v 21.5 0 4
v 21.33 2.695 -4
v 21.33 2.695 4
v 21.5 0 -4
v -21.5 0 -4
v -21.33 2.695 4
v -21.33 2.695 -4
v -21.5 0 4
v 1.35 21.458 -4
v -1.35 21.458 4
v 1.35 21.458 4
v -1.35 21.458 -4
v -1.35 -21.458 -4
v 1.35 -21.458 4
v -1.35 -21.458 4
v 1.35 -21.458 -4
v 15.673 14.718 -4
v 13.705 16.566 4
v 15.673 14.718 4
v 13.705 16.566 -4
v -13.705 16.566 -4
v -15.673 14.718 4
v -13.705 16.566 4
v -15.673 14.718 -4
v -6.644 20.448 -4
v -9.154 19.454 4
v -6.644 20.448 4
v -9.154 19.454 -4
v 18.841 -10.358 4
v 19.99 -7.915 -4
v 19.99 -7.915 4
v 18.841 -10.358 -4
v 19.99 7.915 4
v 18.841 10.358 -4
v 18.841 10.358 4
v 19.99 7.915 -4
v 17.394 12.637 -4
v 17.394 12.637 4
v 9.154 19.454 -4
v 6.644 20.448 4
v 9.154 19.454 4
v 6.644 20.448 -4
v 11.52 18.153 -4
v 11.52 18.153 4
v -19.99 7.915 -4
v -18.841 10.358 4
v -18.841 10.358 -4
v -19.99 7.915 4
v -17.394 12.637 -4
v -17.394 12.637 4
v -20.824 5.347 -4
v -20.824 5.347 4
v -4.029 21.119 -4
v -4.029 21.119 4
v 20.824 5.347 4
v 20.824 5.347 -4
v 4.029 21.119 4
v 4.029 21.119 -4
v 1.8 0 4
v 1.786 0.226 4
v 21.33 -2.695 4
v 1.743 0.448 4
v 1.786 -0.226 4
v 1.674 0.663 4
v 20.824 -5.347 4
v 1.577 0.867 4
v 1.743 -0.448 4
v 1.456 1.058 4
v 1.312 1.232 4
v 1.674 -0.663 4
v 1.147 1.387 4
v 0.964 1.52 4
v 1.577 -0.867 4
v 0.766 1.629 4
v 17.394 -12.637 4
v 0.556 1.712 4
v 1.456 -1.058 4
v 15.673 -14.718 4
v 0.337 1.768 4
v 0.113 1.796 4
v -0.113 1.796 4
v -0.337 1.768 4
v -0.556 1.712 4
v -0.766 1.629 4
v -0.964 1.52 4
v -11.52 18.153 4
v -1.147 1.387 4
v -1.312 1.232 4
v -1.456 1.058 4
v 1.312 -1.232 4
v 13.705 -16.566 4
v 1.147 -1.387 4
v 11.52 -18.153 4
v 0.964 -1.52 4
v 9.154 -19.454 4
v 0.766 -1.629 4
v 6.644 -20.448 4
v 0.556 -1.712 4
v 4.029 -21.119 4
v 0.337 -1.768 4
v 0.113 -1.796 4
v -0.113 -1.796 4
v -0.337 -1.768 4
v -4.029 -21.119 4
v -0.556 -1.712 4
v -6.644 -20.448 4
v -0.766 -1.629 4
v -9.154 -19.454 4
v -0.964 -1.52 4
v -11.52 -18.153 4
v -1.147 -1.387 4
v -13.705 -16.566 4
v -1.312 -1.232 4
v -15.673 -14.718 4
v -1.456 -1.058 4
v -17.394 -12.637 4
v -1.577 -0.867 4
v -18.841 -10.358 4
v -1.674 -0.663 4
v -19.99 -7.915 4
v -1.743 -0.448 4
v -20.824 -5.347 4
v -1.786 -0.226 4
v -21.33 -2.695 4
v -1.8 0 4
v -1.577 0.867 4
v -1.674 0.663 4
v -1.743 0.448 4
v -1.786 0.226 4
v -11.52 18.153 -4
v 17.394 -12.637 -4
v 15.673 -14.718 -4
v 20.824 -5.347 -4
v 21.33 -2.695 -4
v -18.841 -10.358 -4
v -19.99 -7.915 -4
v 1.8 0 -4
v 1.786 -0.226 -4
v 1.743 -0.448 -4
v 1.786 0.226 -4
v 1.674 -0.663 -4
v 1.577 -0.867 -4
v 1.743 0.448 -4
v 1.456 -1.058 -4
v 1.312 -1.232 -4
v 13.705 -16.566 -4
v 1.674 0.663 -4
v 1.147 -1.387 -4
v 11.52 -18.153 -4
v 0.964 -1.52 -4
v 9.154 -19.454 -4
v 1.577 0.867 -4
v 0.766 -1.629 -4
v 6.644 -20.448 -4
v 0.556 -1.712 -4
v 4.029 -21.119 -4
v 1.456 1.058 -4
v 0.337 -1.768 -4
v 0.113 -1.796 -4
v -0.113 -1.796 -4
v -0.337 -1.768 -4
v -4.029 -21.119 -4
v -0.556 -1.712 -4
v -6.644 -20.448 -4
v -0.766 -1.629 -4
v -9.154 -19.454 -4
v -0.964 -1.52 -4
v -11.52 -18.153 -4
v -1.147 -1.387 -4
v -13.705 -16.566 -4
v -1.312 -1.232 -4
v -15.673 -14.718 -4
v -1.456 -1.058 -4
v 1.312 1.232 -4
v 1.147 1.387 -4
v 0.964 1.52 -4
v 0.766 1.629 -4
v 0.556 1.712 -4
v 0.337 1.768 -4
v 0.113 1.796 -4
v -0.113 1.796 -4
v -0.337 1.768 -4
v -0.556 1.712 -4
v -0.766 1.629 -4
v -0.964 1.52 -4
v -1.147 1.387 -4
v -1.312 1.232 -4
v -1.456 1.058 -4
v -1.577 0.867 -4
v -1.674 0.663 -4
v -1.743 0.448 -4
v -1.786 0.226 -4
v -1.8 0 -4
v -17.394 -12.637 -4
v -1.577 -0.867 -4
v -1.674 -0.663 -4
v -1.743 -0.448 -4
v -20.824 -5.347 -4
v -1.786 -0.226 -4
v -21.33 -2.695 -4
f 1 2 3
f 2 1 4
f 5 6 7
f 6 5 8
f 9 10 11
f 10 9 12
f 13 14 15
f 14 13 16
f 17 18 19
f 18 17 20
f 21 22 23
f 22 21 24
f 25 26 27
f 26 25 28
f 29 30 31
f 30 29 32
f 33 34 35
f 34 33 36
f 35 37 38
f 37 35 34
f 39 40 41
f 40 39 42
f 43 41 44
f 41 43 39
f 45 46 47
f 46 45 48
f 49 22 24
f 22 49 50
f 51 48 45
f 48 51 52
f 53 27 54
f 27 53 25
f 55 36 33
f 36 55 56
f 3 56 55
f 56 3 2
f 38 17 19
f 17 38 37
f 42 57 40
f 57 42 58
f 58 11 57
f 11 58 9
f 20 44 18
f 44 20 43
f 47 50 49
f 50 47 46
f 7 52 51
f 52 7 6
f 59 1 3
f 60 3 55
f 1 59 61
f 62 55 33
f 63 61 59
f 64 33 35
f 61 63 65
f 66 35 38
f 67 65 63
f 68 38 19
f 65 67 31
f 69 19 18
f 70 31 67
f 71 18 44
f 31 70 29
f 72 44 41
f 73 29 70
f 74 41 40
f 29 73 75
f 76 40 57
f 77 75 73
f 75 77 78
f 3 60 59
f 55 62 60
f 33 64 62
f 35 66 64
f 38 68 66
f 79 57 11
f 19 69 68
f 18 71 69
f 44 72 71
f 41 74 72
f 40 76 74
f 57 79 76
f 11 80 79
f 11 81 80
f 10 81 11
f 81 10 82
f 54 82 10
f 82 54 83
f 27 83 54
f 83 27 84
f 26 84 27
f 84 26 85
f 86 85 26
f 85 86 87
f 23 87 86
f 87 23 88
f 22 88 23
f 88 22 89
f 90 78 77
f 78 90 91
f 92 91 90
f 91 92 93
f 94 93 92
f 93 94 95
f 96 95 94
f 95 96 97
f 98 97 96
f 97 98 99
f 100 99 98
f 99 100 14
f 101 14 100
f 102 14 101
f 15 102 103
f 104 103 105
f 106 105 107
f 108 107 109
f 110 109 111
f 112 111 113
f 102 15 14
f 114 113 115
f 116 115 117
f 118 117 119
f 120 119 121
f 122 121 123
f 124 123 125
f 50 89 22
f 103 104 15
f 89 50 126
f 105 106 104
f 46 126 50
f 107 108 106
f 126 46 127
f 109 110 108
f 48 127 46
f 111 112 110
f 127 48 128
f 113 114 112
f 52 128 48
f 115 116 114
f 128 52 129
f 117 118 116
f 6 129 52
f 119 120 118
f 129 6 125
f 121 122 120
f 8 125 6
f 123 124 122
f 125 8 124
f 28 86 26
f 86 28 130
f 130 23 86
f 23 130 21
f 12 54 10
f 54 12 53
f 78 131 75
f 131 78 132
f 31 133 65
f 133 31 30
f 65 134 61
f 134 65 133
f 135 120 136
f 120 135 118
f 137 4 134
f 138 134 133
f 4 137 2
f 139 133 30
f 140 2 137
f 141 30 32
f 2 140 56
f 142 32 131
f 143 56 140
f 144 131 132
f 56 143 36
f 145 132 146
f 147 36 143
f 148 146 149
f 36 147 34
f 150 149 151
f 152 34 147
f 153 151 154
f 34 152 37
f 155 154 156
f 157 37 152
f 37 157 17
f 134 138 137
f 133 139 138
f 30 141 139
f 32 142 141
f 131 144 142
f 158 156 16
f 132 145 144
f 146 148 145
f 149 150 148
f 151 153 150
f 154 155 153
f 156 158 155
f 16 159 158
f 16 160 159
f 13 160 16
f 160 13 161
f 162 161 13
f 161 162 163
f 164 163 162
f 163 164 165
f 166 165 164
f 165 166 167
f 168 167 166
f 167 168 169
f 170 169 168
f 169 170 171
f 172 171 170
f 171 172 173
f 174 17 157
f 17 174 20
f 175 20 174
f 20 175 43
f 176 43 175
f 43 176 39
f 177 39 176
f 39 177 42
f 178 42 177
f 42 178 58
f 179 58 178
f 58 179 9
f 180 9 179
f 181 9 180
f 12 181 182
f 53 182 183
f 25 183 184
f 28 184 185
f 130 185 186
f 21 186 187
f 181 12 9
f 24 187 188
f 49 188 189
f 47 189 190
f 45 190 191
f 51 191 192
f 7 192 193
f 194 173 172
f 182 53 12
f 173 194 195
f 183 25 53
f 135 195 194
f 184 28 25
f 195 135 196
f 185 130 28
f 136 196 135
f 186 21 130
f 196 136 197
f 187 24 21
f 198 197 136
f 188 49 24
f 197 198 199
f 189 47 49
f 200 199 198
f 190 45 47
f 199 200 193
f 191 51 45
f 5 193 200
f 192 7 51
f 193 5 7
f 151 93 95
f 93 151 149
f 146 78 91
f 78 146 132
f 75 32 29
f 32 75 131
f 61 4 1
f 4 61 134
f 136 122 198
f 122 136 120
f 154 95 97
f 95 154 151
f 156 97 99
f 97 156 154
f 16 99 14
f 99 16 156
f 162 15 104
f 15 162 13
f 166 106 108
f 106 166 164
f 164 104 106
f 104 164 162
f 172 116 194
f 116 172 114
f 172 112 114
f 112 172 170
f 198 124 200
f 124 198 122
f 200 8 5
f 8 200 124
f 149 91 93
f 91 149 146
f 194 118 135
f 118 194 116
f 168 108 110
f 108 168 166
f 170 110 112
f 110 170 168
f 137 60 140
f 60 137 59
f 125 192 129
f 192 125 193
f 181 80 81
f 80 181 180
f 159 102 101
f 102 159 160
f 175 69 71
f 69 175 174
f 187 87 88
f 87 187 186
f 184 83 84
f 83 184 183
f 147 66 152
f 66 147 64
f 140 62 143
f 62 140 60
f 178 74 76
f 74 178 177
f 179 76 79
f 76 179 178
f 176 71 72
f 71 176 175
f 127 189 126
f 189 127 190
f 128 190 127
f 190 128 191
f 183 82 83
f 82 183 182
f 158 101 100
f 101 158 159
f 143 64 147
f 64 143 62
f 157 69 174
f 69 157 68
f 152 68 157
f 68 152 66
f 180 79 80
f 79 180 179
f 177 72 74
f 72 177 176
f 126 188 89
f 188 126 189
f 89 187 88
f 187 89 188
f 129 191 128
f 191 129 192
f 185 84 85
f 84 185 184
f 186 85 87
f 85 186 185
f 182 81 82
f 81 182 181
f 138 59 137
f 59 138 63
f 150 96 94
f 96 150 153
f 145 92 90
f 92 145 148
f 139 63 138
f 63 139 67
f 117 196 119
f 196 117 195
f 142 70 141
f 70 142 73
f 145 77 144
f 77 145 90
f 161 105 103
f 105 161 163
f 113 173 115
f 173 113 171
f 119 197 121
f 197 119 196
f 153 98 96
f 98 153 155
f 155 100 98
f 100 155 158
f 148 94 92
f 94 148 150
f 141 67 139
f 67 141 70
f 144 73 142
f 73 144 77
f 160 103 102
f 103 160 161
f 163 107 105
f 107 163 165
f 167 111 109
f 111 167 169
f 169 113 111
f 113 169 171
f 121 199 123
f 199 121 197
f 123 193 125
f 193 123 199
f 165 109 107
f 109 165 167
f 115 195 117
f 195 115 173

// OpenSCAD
$fn = 50;


difference() {
	union() {
		translate(v = [0, 0, -4.0000000000]) {
			cylinder(h = 8, r = 21.5000000000);
		}
	}
	union() {
		translate(v = [0, 0, -100.0000000000]) {
			cylinder(h = 200, r = 1.8000000000);
		}
	}
}
